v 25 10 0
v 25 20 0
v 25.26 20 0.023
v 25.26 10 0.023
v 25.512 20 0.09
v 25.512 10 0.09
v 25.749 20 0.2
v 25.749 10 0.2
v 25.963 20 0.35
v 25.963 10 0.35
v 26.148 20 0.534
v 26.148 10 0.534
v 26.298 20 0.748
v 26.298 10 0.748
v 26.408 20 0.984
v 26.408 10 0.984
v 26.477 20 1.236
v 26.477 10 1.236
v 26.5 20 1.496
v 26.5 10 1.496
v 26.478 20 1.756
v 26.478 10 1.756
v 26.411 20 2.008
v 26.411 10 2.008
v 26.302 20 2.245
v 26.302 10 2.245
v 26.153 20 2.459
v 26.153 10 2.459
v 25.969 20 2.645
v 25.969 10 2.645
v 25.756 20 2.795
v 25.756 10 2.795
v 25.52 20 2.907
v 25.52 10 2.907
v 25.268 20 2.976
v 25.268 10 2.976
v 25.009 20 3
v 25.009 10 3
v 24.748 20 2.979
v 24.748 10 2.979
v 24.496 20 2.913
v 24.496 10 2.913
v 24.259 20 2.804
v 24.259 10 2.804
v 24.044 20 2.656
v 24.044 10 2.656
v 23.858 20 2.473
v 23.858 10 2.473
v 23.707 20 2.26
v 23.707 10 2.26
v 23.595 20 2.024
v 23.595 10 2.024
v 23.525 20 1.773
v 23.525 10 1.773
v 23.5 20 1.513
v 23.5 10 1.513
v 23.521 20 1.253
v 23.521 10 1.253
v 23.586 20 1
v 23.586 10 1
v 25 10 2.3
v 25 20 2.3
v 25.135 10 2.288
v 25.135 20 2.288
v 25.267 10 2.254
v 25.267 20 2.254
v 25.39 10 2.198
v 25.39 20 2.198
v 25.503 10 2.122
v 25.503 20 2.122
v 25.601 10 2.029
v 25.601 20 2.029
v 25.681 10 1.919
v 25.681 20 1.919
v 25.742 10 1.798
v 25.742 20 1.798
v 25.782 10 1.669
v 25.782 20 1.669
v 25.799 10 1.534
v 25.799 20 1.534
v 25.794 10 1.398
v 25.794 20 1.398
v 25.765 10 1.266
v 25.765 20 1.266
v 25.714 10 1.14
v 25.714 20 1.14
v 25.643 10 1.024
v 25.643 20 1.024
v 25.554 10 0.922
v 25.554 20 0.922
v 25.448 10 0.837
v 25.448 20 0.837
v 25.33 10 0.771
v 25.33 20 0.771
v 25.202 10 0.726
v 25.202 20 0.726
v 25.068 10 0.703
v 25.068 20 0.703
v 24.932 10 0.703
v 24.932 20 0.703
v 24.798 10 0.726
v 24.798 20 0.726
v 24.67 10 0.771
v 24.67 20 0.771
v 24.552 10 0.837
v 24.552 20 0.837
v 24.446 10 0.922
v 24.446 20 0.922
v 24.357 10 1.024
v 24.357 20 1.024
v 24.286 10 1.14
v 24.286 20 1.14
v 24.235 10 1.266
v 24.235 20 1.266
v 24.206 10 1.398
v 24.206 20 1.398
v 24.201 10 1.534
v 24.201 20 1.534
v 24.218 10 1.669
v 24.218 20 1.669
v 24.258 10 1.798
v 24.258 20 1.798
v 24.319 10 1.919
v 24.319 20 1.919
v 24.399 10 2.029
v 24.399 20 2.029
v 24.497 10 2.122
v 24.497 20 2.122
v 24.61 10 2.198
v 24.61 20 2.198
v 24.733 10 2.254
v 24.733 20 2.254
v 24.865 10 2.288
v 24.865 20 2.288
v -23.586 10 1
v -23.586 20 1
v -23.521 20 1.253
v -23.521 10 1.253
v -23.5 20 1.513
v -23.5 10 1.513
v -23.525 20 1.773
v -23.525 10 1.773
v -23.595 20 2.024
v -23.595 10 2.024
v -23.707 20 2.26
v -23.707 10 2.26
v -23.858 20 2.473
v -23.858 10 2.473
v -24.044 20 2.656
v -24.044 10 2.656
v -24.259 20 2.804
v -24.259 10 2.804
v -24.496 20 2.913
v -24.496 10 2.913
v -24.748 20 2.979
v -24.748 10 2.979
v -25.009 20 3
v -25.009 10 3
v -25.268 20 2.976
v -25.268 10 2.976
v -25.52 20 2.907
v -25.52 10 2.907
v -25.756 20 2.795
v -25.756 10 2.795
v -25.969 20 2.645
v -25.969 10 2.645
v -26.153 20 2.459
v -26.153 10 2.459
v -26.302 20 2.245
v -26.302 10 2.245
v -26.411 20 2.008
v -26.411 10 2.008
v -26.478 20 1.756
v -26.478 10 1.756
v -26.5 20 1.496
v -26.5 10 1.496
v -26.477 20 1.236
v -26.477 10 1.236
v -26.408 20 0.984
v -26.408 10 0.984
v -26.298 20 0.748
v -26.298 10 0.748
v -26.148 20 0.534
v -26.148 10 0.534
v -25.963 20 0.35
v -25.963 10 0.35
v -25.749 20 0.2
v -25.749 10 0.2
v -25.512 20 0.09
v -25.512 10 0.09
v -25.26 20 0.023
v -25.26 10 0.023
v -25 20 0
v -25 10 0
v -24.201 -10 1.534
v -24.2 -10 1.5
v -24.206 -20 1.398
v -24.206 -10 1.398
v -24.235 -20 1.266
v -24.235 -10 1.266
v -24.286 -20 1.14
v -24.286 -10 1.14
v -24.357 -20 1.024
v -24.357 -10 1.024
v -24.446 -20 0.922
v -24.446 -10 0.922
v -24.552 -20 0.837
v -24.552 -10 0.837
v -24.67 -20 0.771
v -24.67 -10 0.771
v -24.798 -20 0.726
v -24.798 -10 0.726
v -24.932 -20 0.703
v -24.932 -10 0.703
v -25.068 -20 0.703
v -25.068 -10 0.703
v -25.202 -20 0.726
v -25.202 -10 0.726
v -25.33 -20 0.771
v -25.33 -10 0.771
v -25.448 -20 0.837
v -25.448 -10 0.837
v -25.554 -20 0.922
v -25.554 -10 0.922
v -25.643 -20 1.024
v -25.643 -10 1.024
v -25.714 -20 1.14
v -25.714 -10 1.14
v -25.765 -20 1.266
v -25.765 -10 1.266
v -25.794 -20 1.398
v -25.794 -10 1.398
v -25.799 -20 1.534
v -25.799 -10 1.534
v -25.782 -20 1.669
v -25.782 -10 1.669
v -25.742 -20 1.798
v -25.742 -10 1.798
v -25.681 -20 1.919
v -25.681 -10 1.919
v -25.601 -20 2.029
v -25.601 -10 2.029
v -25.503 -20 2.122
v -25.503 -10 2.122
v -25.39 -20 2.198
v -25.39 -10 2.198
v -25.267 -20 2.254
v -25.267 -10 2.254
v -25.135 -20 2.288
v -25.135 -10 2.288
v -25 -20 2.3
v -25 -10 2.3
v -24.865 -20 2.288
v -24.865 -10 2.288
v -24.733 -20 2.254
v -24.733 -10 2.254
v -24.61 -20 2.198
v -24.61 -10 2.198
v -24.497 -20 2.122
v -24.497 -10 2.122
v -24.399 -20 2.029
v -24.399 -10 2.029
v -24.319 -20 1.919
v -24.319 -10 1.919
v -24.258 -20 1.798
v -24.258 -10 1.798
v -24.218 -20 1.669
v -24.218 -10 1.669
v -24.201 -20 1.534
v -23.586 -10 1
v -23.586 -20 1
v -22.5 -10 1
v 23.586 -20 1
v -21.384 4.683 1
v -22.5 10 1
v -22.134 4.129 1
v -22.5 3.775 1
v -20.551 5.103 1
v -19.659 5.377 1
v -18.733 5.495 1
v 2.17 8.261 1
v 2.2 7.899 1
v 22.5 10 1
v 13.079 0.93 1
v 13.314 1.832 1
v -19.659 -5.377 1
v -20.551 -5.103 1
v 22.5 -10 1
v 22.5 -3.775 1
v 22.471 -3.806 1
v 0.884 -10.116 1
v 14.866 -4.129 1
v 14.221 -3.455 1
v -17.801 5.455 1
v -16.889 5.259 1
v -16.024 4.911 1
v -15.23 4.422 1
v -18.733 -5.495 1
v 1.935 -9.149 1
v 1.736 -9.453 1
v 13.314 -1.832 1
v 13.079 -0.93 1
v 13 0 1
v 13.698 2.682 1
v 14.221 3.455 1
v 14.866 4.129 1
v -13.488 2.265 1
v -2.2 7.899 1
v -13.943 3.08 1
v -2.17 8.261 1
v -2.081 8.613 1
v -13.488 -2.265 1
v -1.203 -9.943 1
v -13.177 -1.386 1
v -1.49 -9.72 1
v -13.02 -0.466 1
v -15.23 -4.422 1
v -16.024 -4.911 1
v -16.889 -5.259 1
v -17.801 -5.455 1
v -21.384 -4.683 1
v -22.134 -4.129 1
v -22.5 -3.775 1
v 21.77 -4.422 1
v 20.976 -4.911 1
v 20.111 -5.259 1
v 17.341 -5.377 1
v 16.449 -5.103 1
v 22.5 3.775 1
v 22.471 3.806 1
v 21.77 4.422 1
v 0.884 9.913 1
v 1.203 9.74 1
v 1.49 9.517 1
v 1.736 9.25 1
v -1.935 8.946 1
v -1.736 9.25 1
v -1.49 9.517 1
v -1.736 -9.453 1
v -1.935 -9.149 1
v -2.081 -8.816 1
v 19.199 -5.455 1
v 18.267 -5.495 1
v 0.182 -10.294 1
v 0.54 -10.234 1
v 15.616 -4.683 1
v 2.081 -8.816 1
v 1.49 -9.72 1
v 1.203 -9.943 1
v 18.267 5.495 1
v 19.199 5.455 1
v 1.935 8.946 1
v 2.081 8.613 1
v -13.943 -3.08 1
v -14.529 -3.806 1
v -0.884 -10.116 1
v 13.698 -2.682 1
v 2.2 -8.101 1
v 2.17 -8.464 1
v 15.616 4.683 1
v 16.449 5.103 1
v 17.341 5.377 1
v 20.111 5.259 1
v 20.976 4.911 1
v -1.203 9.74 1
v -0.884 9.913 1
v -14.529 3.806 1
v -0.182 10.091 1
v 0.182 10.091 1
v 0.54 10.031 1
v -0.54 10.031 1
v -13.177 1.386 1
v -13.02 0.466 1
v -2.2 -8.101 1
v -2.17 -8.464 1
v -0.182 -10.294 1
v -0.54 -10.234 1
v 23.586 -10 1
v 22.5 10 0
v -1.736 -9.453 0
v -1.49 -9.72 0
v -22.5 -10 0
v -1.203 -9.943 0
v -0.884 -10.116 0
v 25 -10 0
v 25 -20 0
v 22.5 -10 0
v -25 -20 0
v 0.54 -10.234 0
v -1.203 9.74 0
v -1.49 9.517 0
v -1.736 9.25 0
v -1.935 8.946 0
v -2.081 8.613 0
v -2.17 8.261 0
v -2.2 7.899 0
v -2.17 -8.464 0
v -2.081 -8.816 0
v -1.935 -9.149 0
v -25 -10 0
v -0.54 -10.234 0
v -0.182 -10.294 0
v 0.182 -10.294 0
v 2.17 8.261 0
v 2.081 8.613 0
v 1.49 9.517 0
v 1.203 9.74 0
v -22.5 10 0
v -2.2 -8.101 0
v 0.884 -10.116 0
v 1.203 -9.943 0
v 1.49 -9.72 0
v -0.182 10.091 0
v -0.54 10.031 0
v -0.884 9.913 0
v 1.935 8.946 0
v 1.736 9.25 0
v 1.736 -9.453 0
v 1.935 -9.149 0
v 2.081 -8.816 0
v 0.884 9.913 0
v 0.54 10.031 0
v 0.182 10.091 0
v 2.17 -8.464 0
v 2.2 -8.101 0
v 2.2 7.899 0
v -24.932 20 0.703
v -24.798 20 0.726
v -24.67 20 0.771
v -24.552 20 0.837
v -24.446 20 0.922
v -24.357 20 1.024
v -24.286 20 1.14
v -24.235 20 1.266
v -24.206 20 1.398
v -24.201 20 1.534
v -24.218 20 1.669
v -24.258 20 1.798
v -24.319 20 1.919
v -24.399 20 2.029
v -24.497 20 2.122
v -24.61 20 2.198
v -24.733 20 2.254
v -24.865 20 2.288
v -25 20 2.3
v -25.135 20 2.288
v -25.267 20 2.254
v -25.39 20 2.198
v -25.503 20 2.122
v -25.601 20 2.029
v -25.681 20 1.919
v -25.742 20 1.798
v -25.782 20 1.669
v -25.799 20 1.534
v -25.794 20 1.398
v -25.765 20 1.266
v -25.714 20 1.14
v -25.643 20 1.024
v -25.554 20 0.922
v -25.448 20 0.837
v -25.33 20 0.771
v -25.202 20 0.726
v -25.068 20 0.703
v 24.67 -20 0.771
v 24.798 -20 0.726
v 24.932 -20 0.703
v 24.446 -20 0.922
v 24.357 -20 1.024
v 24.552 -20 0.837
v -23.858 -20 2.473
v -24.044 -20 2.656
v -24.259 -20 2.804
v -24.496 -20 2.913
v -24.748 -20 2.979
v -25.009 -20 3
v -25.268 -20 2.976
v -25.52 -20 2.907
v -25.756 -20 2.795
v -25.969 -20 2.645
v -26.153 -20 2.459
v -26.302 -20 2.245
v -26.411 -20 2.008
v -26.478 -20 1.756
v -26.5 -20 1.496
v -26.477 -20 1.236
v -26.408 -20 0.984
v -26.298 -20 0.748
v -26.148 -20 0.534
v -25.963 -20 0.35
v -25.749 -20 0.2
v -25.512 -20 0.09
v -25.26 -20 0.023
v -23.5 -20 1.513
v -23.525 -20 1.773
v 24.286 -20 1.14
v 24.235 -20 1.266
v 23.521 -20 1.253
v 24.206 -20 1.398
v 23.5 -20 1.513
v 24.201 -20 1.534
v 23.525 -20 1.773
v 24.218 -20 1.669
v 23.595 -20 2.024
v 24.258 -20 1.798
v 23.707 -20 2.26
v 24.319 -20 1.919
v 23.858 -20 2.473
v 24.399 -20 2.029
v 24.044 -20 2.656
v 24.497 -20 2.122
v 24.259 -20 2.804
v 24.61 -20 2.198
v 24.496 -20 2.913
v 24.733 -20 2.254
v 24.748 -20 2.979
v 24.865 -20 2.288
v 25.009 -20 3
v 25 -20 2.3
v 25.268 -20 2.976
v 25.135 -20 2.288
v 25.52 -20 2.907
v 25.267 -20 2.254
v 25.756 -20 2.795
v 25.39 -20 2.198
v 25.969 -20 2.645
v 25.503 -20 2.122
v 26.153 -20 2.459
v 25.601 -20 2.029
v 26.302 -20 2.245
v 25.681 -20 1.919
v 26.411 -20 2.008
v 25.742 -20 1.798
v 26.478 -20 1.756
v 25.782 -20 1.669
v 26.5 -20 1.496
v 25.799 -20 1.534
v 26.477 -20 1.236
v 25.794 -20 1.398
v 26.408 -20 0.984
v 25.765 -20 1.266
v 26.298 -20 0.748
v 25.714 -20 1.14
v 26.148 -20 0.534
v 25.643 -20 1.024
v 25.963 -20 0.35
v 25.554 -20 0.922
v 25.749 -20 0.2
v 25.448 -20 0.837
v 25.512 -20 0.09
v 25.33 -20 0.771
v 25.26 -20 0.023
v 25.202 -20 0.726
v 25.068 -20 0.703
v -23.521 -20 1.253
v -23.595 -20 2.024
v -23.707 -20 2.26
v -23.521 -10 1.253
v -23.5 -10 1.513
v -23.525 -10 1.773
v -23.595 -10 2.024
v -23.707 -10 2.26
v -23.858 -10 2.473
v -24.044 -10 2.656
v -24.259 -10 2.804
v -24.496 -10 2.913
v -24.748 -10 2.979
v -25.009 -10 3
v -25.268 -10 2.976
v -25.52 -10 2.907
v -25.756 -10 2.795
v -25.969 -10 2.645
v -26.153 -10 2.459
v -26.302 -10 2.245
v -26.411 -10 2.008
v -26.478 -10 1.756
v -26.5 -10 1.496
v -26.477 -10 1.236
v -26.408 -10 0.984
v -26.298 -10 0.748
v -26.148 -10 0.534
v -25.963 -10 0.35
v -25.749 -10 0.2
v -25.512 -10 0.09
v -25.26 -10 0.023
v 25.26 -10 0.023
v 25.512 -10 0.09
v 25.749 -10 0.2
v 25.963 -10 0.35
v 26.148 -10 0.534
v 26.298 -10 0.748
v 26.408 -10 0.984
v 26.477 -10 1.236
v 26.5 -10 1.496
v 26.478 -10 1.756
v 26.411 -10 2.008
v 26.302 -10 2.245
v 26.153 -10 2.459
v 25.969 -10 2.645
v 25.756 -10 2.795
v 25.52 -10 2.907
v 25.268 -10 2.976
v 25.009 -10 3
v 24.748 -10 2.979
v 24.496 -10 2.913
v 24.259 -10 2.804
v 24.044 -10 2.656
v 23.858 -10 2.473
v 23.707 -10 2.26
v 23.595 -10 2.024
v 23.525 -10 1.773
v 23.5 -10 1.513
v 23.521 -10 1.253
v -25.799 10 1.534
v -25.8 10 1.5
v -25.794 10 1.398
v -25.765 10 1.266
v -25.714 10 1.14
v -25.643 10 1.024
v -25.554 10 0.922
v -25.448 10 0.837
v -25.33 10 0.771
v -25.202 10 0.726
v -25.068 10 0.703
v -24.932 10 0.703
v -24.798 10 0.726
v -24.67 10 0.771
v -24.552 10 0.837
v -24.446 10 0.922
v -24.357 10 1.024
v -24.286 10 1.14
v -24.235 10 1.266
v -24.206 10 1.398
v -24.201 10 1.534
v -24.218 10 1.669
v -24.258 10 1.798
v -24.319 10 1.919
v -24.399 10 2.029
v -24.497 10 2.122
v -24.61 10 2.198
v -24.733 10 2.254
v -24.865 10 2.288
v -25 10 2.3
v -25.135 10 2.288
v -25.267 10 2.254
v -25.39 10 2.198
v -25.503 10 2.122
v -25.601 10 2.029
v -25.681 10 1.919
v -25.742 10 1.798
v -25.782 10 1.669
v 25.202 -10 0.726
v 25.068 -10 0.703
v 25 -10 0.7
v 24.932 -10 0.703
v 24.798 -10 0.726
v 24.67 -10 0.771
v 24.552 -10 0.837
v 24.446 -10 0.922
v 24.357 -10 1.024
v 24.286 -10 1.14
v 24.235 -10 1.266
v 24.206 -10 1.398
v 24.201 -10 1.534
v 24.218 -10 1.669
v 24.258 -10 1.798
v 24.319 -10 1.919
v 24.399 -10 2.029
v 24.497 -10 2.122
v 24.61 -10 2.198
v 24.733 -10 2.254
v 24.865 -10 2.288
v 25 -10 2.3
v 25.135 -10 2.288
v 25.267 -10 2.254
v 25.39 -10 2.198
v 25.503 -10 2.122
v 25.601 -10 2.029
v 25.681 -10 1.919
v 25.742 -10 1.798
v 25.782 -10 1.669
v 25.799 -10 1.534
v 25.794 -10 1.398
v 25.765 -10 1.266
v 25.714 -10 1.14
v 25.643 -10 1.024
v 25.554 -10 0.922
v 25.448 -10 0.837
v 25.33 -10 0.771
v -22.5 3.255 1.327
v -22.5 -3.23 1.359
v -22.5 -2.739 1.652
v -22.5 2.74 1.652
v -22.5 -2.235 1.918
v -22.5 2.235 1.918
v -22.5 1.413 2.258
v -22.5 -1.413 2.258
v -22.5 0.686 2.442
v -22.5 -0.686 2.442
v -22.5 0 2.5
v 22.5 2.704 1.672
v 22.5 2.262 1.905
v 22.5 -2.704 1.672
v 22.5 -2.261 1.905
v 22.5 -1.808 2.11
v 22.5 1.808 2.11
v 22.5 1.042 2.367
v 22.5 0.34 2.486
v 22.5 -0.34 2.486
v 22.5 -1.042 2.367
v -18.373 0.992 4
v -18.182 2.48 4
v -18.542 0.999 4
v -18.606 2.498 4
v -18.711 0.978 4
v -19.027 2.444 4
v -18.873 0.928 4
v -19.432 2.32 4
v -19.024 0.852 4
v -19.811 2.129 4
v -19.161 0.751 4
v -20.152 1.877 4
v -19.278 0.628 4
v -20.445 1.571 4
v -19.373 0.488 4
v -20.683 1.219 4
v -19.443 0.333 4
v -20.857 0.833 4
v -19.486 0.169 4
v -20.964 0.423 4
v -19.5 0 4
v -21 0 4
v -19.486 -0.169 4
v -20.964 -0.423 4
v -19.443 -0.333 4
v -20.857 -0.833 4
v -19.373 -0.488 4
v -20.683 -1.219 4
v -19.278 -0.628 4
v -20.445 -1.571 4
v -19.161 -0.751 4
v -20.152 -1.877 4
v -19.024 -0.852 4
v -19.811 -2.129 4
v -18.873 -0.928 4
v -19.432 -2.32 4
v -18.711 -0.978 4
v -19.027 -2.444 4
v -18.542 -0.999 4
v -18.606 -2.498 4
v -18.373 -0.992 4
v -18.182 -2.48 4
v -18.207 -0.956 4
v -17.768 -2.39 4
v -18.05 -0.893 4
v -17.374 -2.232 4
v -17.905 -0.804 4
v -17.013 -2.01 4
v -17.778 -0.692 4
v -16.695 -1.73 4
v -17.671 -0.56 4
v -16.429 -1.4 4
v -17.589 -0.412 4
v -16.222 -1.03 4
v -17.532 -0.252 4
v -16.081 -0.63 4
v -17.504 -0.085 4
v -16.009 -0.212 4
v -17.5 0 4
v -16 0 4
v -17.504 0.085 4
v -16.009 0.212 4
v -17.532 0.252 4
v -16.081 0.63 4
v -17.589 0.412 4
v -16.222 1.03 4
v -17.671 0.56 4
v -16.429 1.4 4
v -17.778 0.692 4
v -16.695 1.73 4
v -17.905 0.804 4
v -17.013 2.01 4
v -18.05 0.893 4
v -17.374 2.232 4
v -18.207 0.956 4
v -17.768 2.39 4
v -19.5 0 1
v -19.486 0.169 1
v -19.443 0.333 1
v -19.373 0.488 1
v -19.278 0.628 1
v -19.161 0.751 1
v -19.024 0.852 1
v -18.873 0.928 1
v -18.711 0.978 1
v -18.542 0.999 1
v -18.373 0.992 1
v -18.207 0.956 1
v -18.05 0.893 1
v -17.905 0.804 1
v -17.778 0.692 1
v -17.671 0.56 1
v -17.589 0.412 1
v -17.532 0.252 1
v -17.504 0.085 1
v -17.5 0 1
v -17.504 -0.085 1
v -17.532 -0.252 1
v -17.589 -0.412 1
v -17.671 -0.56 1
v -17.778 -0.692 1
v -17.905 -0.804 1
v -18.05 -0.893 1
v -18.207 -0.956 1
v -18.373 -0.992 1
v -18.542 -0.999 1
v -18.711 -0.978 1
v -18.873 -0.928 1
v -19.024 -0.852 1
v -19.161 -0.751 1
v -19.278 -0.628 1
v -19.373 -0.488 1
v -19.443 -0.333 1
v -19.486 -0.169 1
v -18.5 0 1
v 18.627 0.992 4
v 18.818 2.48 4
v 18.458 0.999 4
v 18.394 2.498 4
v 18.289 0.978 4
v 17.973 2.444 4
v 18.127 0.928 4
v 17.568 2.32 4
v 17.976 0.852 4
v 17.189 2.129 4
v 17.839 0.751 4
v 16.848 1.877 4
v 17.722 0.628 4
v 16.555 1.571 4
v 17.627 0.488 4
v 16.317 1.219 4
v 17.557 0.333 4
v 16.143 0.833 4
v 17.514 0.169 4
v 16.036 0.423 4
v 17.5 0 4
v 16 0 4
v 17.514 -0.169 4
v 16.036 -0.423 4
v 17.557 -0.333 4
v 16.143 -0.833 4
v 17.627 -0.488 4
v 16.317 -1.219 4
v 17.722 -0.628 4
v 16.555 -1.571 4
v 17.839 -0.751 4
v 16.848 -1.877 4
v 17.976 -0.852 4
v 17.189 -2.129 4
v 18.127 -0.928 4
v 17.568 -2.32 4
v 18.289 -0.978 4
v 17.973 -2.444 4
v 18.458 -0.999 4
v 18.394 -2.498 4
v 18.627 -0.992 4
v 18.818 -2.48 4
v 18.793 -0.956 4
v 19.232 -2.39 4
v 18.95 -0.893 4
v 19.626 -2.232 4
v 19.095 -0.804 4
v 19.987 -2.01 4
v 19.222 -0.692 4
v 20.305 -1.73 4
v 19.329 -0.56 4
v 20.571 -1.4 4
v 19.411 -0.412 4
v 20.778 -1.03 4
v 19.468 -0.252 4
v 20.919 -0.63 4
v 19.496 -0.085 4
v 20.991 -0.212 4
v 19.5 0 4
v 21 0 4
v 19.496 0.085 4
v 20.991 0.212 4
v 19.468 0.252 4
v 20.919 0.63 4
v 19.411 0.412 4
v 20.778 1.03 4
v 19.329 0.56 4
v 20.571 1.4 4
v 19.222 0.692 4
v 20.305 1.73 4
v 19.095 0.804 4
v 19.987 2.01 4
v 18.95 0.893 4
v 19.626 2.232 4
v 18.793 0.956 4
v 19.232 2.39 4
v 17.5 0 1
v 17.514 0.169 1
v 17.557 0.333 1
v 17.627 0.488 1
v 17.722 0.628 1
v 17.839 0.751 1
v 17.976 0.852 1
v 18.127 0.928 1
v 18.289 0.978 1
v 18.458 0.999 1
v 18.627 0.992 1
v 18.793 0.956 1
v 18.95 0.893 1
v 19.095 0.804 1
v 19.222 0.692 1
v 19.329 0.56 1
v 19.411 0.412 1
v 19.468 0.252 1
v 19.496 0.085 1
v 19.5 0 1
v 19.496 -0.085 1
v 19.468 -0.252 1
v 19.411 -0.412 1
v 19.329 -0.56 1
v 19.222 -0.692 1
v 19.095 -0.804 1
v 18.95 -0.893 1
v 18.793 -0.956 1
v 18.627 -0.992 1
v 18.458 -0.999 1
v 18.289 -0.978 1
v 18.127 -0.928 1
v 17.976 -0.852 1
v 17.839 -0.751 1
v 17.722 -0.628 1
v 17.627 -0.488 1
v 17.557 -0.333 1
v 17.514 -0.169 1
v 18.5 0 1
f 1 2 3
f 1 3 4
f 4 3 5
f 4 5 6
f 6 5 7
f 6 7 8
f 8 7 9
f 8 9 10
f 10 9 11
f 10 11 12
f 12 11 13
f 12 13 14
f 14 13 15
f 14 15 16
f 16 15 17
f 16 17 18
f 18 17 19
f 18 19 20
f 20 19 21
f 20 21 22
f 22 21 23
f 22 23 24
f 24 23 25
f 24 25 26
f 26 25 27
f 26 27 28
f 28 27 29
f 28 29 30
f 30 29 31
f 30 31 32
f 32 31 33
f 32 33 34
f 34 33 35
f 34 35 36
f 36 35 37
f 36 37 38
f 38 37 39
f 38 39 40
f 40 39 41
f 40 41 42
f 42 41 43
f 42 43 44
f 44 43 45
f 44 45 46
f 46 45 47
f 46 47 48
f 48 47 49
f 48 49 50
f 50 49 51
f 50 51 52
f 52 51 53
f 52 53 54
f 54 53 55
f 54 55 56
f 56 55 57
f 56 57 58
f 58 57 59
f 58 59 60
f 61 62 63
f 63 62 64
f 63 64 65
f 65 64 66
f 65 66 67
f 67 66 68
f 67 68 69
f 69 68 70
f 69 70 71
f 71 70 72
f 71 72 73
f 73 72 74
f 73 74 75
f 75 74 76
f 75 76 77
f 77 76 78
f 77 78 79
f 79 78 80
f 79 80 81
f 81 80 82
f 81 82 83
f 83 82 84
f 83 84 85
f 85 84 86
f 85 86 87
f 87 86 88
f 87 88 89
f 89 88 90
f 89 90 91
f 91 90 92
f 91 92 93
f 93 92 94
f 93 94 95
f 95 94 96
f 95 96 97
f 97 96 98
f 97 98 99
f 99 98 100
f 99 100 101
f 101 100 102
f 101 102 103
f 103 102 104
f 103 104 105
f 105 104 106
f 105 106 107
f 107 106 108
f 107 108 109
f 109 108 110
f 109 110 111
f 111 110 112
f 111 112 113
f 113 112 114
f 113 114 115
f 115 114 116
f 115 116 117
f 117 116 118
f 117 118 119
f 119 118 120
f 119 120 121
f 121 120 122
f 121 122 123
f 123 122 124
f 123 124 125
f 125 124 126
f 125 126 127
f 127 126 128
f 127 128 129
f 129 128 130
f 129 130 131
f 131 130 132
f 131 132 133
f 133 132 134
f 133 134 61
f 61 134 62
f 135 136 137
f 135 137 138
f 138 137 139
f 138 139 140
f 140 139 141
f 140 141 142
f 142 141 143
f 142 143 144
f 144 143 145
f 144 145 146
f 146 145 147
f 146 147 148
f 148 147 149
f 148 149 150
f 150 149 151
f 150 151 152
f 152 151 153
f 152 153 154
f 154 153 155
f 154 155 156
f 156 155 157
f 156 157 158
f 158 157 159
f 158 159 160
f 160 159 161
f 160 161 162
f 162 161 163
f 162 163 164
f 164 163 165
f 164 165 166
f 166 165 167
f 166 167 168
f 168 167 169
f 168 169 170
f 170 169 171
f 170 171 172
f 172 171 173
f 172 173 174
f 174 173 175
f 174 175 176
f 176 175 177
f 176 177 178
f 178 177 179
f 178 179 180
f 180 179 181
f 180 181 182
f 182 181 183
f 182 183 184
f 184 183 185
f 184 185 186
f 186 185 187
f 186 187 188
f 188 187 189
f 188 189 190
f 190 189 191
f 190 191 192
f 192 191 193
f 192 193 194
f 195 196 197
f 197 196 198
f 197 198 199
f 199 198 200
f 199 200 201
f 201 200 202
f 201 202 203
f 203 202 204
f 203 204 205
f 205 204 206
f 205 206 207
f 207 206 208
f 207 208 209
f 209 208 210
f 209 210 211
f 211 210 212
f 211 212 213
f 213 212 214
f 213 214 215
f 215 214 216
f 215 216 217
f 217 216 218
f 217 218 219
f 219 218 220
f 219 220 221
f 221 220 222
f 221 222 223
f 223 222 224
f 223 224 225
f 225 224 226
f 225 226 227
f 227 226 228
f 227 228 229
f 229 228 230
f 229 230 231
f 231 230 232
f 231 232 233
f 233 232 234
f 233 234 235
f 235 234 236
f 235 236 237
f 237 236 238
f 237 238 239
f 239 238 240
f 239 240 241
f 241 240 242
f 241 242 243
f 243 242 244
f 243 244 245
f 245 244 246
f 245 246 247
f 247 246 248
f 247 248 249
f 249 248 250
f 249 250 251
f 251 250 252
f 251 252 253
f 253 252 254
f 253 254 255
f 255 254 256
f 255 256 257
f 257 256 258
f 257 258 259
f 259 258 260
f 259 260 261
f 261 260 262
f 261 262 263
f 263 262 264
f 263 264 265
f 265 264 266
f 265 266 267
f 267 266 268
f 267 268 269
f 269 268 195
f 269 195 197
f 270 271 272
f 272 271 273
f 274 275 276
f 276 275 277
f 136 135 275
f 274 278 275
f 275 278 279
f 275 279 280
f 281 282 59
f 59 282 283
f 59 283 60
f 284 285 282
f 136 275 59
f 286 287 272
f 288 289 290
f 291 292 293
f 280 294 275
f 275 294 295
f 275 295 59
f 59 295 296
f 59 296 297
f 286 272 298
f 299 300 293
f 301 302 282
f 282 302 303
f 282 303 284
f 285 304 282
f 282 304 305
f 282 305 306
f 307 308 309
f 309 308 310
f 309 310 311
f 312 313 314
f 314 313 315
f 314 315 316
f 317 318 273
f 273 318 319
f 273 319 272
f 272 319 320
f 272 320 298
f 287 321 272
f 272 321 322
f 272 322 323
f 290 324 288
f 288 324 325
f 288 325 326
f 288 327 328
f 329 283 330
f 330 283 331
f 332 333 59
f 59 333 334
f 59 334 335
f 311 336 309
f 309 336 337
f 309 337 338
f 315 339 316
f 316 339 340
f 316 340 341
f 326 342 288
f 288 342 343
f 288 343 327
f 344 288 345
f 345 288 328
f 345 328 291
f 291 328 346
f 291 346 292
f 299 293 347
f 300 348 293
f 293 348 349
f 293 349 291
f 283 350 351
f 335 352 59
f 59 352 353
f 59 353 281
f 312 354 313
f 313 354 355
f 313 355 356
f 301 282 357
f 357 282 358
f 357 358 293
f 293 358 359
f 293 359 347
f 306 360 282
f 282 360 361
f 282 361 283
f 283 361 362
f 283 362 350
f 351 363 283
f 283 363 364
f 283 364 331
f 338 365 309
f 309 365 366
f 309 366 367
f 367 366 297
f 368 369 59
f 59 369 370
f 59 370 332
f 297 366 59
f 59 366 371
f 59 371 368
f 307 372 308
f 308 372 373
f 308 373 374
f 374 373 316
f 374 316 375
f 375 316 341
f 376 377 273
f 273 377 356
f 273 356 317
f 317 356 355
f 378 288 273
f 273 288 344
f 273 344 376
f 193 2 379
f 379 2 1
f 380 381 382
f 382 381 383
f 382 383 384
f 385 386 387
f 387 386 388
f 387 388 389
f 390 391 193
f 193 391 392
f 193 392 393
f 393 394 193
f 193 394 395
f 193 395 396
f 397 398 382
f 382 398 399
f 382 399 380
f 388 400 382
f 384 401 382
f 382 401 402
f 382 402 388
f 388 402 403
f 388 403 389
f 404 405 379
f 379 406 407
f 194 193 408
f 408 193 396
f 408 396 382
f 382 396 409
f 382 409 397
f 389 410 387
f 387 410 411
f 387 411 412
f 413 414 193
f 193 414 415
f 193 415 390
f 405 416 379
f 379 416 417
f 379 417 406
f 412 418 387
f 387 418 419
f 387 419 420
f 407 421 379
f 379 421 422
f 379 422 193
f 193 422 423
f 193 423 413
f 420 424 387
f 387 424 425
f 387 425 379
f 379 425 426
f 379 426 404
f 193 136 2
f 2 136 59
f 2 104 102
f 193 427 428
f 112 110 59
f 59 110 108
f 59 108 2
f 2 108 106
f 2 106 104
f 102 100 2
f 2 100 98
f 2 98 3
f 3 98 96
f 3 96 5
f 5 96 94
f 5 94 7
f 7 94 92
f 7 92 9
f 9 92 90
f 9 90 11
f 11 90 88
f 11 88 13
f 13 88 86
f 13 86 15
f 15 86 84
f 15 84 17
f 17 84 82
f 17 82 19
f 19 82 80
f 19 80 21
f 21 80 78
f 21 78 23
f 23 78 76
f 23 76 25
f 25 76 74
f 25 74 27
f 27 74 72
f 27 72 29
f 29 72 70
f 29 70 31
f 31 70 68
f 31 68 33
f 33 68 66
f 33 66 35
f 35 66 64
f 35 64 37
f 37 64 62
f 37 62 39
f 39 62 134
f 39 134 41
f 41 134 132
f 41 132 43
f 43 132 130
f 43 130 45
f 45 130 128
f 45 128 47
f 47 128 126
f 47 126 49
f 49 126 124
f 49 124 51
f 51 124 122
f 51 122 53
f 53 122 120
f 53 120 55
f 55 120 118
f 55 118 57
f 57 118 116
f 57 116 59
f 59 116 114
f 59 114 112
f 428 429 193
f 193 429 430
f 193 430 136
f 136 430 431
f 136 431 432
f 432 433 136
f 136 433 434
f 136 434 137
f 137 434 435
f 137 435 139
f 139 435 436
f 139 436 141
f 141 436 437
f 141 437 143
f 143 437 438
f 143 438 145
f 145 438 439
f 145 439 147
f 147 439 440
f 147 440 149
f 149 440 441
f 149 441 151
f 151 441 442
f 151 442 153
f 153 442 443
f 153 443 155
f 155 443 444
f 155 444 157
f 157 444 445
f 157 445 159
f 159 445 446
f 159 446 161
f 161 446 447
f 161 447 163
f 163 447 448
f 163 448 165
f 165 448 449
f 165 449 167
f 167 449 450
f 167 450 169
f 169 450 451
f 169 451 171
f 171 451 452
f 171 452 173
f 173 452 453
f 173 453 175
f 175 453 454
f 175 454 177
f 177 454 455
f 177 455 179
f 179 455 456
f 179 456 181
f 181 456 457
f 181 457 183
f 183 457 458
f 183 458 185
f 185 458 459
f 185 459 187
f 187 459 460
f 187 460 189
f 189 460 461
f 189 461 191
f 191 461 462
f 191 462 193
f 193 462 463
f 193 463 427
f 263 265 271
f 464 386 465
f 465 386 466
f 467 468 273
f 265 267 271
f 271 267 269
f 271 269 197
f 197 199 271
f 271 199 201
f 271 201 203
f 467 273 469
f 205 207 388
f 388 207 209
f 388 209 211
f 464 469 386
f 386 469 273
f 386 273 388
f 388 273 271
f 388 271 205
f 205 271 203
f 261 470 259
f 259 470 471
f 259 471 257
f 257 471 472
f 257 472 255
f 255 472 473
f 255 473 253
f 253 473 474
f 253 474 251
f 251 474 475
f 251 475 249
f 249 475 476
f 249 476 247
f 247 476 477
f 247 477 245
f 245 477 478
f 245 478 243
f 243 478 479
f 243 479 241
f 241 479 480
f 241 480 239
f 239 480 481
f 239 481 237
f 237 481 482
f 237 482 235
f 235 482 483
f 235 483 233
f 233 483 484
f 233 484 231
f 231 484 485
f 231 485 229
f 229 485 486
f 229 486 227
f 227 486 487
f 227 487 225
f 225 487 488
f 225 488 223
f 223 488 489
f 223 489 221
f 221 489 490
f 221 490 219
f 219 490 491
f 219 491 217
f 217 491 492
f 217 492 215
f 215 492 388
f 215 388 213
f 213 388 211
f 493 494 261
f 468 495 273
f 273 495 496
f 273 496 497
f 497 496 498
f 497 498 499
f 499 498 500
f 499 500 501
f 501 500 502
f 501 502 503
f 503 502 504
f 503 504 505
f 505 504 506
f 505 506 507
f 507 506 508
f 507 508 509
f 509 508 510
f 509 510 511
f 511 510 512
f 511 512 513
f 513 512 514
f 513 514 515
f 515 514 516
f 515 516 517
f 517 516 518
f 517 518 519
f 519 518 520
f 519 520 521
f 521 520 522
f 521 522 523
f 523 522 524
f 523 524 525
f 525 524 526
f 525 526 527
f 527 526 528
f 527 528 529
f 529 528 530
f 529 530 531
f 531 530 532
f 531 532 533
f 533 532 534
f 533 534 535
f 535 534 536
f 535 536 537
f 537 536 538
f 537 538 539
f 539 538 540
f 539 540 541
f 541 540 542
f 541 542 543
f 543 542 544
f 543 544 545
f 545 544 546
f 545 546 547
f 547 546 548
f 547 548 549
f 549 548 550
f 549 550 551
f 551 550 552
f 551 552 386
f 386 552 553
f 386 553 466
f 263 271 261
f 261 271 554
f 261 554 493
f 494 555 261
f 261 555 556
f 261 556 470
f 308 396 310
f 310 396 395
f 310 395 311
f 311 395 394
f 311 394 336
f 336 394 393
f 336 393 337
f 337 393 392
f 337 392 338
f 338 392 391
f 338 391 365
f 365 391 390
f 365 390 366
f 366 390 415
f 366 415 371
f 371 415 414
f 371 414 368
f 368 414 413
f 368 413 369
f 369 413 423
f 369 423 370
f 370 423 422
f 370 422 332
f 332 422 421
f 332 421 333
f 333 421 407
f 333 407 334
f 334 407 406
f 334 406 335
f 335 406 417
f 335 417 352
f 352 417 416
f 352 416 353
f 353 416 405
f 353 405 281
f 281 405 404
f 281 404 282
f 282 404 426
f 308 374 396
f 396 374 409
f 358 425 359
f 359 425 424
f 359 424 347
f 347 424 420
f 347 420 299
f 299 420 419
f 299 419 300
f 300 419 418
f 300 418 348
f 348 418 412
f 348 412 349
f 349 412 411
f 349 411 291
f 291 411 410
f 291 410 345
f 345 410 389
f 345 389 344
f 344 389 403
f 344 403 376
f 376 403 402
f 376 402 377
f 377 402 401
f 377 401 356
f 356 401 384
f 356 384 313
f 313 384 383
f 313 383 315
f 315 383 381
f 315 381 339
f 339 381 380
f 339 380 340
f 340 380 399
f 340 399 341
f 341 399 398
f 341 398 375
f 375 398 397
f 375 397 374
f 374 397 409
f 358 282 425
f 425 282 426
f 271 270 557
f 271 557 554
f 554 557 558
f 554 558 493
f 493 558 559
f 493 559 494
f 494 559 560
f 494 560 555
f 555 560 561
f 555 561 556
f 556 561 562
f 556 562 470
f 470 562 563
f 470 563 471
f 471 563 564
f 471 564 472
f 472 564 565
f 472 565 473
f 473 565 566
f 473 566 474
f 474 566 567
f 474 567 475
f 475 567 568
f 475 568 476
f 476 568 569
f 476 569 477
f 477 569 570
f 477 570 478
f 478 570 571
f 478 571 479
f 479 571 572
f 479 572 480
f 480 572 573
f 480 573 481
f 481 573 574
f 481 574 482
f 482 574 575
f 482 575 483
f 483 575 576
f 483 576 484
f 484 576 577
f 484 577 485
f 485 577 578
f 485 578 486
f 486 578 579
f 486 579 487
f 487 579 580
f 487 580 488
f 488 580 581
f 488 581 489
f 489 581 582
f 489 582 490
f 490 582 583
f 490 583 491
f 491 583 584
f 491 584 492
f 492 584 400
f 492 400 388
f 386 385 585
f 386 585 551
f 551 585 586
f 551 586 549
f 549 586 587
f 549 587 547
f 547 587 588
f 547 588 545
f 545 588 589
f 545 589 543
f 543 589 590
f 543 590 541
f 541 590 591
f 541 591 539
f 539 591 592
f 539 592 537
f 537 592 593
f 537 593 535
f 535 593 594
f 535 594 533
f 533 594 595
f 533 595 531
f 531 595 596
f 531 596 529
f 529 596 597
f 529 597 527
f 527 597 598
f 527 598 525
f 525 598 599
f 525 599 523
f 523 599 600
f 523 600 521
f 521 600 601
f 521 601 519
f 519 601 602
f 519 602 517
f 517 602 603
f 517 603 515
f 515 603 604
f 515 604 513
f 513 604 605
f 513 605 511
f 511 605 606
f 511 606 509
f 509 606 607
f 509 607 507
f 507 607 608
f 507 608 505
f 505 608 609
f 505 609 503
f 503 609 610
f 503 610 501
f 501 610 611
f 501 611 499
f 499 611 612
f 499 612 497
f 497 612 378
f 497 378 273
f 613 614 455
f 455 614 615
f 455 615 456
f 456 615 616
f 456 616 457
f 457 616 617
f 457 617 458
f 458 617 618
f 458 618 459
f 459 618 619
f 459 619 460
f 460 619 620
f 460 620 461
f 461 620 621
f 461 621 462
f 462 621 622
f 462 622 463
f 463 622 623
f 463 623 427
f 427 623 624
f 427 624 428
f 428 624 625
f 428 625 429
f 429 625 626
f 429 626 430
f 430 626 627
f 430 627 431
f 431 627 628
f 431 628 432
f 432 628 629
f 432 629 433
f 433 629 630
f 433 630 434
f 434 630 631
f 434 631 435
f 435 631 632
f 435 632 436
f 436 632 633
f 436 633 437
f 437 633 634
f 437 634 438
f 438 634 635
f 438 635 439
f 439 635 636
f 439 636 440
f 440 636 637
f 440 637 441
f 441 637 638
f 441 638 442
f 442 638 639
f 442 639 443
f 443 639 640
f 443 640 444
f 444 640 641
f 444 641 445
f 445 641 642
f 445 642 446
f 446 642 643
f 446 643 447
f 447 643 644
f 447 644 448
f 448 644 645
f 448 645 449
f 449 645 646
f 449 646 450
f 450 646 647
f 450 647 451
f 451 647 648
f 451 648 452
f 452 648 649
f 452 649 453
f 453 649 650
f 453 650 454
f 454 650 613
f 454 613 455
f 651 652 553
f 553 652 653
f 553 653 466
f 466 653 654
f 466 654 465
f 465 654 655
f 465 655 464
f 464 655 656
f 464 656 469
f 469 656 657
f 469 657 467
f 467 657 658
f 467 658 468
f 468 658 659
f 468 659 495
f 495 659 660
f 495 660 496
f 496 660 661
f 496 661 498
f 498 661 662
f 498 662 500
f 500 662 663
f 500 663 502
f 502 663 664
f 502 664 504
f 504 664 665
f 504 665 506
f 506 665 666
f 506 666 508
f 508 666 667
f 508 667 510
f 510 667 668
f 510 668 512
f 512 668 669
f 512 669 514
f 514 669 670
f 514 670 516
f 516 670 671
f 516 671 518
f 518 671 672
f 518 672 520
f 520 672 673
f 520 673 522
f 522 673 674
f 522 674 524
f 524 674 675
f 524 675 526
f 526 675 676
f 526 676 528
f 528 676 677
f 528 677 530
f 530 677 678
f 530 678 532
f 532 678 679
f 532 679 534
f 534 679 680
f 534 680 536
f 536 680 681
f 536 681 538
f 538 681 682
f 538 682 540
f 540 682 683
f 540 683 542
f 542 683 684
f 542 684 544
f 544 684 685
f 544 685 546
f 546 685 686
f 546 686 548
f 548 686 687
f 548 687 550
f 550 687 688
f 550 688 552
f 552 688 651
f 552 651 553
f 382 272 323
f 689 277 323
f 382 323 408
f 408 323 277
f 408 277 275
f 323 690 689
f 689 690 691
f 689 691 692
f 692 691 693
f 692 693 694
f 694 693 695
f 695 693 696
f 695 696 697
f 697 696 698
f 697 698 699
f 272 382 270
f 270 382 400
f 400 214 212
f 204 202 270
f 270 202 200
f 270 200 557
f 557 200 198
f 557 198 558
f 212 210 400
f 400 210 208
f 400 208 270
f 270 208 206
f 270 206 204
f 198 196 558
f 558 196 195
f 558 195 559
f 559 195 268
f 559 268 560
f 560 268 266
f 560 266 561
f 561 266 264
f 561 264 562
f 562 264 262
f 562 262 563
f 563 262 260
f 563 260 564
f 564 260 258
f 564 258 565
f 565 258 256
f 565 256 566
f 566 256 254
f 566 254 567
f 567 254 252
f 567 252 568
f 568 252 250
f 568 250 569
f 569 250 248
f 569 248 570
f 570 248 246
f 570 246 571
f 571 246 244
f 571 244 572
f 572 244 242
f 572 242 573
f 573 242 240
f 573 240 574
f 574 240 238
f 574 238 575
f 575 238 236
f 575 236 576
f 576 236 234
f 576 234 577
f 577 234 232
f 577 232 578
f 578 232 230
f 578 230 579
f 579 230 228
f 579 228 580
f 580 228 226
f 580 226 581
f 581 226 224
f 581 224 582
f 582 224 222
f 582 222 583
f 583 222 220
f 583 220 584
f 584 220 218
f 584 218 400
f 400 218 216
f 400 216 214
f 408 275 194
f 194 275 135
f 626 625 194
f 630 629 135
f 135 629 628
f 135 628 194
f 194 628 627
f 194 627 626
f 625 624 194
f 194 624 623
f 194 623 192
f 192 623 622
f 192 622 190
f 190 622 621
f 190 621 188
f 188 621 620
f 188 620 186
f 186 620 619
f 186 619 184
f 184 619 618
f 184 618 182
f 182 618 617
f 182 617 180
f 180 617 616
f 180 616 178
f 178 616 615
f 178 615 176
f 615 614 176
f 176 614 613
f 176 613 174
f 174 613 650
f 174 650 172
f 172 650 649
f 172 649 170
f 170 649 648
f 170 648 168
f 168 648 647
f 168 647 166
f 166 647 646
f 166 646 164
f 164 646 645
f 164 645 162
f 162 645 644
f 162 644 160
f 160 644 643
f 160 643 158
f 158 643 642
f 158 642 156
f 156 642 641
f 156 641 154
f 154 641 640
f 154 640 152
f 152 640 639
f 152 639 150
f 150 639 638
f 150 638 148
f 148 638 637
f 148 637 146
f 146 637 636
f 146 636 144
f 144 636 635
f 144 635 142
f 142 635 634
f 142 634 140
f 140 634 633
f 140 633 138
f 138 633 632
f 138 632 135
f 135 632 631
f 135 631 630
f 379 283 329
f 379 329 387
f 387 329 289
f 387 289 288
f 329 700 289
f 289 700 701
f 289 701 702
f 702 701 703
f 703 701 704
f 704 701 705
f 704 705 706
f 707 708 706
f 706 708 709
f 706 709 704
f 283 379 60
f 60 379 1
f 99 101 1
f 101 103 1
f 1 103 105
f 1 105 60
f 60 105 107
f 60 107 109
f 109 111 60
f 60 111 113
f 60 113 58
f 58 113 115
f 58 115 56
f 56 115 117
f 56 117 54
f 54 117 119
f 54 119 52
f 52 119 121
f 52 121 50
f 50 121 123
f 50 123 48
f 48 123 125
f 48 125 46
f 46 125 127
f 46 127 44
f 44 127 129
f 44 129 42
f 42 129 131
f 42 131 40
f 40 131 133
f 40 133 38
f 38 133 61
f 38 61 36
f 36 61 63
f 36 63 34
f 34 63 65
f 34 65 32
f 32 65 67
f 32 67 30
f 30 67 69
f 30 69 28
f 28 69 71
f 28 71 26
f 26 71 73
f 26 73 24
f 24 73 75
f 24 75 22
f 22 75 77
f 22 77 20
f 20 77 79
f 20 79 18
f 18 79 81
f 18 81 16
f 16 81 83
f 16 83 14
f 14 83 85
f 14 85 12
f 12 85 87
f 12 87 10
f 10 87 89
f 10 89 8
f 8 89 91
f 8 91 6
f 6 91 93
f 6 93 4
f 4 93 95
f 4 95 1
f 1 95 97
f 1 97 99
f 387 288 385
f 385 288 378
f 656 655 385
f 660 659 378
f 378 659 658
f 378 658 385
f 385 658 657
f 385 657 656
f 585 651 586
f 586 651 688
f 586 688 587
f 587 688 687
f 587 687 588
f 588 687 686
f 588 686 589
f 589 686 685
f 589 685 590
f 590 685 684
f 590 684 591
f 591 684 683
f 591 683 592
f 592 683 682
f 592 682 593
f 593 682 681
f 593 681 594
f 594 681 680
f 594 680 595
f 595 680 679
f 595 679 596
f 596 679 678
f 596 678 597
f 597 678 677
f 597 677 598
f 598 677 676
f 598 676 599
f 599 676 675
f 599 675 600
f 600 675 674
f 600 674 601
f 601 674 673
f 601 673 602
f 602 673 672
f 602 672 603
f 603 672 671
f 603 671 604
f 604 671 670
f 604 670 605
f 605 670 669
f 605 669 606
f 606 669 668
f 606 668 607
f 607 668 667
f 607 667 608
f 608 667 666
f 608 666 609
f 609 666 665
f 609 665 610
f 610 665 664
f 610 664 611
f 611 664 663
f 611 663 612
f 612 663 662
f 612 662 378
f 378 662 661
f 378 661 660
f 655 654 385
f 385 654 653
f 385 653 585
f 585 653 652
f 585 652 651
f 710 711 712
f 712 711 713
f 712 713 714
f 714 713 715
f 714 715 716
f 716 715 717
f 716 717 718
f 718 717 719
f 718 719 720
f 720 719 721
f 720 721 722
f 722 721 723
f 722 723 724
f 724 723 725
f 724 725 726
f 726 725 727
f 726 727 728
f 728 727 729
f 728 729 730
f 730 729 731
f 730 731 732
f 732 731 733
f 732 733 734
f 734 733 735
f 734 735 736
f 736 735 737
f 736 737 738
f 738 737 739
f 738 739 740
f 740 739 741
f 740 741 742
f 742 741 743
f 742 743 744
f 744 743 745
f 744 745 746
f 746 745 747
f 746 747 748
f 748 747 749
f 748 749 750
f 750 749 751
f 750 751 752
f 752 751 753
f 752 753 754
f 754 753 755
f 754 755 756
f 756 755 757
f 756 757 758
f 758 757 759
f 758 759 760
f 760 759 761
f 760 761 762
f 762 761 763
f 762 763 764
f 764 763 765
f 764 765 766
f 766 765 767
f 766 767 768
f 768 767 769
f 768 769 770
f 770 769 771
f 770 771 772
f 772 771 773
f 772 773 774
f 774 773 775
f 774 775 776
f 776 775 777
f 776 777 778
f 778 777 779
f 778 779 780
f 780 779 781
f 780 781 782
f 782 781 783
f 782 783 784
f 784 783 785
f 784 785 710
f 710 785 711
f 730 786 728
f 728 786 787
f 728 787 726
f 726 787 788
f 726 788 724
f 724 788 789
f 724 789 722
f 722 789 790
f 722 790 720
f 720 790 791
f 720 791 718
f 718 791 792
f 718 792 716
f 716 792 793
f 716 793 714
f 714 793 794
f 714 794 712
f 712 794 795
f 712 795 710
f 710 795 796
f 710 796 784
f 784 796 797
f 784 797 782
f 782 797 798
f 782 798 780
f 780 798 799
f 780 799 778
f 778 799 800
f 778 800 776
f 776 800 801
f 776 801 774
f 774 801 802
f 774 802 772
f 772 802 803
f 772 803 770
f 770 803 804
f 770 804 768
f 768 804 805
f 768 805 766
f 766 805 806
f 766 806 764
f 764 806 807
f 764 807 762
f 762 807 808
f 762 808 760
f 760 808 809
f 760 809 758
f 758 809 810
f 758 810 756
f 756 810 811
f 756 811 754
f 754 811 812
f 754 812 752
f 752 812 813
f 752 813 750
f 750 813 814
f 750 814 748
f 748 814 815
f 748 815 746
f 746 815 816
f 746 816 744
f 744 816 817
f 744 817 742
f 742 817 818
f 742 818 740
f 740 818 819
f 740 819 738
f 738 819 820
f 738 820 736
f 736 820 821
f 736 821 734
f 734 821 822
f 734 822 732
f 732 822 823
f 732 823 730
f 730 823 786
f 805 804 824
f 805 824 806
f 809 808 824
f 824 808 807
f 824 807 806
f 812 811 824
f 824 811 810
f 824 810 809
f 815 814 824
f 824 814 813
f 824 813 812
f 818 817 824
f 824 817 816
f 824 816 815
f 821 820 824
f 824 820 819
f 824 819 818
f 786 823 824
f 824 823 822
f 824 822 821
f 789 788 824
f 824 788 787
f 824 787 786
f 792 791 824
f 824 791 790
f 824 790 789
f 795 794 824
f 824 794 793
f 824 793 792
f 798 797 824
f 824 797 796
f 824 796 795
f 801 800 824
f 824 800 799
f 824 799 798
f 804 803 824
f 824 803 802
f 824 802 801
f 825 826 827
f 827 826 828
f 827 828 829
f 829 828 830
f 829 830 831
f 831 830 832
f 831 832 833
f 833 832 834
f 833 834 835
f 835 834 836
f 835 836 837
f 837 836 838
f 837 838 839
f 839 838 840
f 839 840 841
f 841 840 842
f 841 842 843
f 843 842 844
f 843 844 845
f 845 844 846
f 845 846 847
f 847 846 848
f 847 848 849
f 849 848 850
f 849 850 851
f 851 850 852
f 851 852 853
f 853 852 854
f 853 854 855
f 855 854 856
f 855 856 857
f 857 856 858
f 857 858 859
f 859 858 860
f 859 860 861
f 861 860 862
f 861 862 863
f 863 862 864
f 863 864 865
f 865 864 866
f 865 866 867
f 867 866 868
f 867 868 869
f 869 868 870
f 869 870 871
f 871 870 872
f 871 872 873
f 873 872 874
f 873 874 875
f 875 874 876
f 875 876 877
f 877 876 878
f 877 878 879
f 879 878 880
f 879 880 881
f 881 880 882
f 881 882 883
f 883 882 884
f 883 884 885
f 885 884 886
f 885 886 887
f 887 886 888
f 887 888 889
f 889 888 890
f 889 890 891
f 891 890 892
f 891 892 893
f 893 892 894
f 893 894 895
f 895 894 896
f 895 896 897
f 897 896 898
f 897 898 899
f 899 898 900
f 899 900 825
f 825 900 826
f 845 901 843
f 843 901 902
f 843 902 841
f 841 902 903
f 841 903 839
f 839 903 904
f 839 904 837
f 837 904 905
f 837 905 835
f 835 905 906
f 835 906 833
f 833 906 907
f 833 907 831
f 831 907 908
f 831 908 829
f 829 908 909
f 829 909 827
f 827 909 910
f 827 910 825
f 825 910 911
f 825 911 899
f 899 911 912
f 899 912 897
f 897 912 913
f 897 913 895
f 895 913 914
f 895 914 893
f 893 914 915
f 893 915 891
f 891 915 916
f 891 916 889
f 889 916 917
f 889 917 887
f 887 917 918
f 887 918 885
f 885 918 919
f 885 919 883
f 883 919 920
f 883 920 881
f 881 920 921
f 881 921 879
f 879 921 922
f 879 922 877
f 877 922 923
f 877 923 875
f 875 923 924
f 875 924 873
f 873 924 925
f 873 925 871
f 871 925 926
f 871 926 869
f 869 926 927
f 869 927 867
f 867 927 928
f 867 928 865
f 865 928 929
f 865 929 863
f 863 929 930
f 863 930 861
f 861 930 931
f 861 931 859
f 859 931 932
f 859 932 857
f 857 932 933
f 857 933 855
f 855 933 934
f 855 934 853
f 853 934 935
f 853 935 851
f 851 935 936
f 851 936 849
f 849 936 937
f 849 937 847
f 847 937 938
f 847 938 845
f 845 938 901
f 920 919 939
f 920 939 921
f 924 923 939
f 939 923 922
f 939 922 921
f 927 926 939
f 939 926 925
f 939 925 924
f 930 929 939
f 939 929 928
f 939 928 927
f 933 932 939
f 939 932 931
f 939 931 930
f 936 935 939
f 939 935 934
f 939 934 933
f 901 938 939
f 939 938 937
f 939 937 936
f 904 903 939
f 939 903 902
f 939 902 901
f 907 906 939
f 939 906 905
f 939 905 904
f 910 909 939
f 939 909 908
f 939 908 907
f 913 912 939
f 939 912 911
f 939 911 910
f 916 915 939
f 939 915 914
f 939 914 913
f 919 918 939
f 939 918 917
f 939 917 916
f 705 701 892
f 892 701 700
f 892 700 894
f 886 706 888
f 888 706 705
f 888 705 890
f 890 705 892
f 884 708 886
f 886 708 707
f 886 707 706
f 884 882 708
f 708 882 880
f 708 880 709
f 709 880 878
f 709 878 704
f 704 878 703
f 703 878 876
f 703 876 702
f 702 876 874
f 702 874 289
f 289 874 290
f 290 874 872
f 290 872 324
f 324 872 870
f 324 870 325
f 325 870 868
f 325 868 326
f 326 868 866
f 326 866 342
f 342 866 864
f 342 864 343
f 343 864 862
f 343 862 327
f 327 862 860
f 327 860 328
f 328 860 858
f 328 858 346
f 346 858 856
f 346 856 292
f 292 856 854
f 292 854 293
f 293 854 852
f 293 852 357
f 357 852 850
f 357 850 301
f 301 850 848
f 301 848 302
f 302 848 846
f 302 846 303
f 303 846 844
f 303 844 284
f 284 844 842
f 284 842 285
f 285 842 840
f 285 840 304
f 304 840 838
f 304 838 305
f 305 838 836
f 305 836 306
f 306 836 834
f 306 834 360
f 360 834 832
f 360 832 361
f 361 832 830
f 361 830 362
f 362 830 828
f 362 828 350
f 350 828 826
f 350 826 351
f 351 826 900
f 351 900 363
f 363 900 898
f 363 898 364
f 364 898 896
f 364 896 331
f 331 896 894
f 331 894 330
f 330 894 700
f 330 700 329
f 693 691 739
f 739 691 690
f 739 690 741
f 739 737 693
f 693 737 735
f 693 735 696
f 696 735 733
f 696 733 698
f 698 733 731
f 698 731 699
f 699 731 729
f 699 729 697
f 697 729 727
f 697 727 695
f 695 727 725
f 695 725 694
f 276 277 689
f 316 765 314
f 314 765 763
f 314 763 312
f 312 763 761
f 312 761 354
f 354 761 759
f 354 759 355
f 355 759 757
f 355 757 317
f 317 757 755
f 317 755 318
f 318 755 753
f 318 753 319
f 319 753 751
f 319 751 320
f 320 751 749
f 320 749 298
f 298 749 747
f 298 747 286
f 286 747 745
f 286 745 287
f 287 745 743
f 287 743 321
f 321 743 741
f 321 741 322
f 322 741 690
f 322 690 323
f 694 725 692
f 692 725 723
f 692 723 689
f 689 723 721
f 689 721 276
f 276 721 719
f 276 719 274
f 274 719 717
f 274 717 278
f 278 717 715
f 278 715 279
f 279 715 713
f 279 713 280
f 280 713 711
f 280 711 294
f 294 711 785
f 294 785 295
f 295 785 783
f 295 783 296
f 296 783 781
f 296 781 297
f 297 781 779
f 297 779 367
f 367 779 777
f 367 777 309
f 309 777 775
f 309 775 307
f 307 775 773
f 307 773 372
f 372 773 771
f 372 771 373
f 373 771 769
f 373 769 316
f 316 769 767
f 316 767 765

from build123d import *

# Parameters (mm, degrees)
SKETCH1_W               = 50
SKETCH1_H               = 40
BOSS_EXTRUDE1_DEPTH     = 1
SKETCH2_R               = 1.5
BOSS_EXTRUDE2_DEPTH     = 40
SKETCH3_R               = 0.8
CUT_EXTRUDE1_DEPTH      = 49.075461516
CUT_EXTRUDE2_DEPTH      = 34.260336739
CUT_EXTRUDE2_DEPTH_BACK = 34.260336739
SKETCH4_W               = 29.985936658
SKETCH4_H               = 20
SKETCH4_W_2             = 10.666279811
SKETCH5_R               = 2.5
SKETCH5_R_2             = 1
BOSS_EXTRUDE3_DEPTH     = 3
CHAMFER1_SIZE           = 3


with BuildPart() as part:
    # Sketch1 → Boss-Extrude1 (new body)
    with BuildSketch(Plane.XY):
        Rectangle(SKETCH1_W, SKETCH1_H)
        with BuildLine():
            Line((2.2, 7.898513293), (2.2, -8.101486707))
            ThreePointArc((2.2, -8.101486707), (0, -10.301486707), (-2.2, -8.101486707))
            Line((-2.2, -8.101486707), (-2.2, 7.898513293))
            ThreePointArc((-2.2, 7.898513293), (0, 10.098513293), (2.2, 7.898513293))
        make_face(mode=Mode.SUBTRACT)
    extrude(amount=BOSS_EXTRUDE1_DEPTH)

    # Sketch2 → Boss-Extrude2 (add)
    with BuildSketch(Plane(origin=(0, 20, 0), x_dir=(1, 0, 0), z_dir=(0, 1, 0))):
        with Locations((-25, -1.5)):
            Circle(SKETCH2_R)
        with Locations((25, -1.5)):
            Circle(SKETCH2_R)
    extrude(amount=-BOSS_EXTRUDE2_DEPTH)

    # Sketch3 → Cut-Extrude1 (cut, through all)
    with BuildSketch(Plane(origin=(0, 20, 0), x_dir=(1, 0, 0), z_dir=(0, 1, 0))):
        with Locations(Location((-25, -1.5, 0), (0, 0, 270))):
            Circle(SKETCH3_R)
        with Locations(Location((25, -1.5, 0), (0, 0, 270))):
            Circle(SKETCH3_R)
    extrude(amount=-CUT_EXTRUDE1_DEPTH, mode=Mode.SUBTRACT)

    # Sketch4 → Cut-Extrude2 (cut, two sides: drawn at the far end of the back side and taken through both)
    with BuildSketch(Plane.XY.offset(1).offset(-CUT_EXTRUDE2_DEPTH_BACK)):
        with Locations((-37.492968329, 0)):
            Rectangle(SKETCH4_W, SKETCH4_H)
        with Locations((27.833139906, 0)):
            Rectangle(SKETCH4_W_2, SKETCH4_H)
    extrude(amount=CUT_EXTRUDE2_DEPTH + CUT_EXTRUDE2_DEPTH_BACK, mode=Mode.SUBTRACT)

    # Sketch5 → Boss-Extrude3 (add)
    # profile 1 of 2: a face of its own
    with BuildSketch(Plane.XY.offset(1)):
        with Locations(Location((-18.5, 0, 0), (0, 0, 180))):
            Circle(SKETCH5_R)
        with Locations((-18.5, 0)):
            Circle(SKETCH5_R_2, mode=Mode.SUBTRACT)
    # profile 2 of 2: a face of its own
    with BuildSketch(Plane.XY.offset(1)):
        with Locations(Location((18.5, 0, 0), (0, 0, 180))):
            Circle(SKETCH5_R)
        with Locations((18.5, 0)):
            Circle(SKETCH5_R_2, mode=Mode.SUBTRACT)
    extrude(amount=BOSS_EXTRUDE3_DEPTH)

    # Chamfer1
    # the kernel refuses this chamfer: 3 mm, written as the material it adds along each edge
    with BuildSketch(Plane(origin=(-18.5, 0, 1), x_dir=(-1, 0, 0), z_dir=(0, 1, 0))) as chamfer1_piece_1_section:
        Polygon((2.5 + CHAMFER1_SIZE, 0), (2.5, CHAMFER1_SIZE), (2.5, 0), align=None)
    chamfer1_piece_1 = revolve(axis=Axis((-18.5, 0, 1), (0, 0, 1)), mode=Mode.PRIVATE)
    chamfer1_piece_1 = split(chamfer1_piece_1, bisect_by=Plane(origin=(-22.5, 0, 2.424420983), z_dir=(1, 0, 0)), keep=Keep.TOP, mode=Mode.PRIVATE)
    chamfer1_piece_1 = split(chamfer1_piece_1, bisect_by=Plane(origin=(-14.490726203, 0, 4), z_dir=(0, 0, -1)), keep=Keep.TOP, mode=Mode.PRIVATE)
    add(chamfer1_piece_1)
    with BuildSketch(Plane(origin=(18.5, 0, 1), x_dir=(-1, 0, 0), z_dir=(0, 1, 0))) as chamfer1_piece_2_section:
        Polygon((2.5 + CHAMFER1_SIZE, 0), (2.5, CHAMFER1_SIZE), (2.5, 0), align=None)
    chamfer1_piece_2 = revolve(axis=Axis((18.5, 0, 1), (0, 0, 1)), mode=Mode.PRIVATE)
    chamfer1_piece_2 = split(chamfer1_piece_2, bisect_by=Plane(origin=(22.5, -4.362653262, 1.396136714), z_dir=(-1, 0, 0)), keep=Keep.TOP, mode=Mode.PRIVATE)
    chamfer1_piece_2 = split(chamfer1_piece_2, bisect_by=Plane(origin=(15.981220965, -4.362653262, 4), z_dir=(0, 0, -1)), keep=Keep.TOP, mode=Mode.PRIVATE)
    add(chamfer1_piece_2)


solid = part.part
